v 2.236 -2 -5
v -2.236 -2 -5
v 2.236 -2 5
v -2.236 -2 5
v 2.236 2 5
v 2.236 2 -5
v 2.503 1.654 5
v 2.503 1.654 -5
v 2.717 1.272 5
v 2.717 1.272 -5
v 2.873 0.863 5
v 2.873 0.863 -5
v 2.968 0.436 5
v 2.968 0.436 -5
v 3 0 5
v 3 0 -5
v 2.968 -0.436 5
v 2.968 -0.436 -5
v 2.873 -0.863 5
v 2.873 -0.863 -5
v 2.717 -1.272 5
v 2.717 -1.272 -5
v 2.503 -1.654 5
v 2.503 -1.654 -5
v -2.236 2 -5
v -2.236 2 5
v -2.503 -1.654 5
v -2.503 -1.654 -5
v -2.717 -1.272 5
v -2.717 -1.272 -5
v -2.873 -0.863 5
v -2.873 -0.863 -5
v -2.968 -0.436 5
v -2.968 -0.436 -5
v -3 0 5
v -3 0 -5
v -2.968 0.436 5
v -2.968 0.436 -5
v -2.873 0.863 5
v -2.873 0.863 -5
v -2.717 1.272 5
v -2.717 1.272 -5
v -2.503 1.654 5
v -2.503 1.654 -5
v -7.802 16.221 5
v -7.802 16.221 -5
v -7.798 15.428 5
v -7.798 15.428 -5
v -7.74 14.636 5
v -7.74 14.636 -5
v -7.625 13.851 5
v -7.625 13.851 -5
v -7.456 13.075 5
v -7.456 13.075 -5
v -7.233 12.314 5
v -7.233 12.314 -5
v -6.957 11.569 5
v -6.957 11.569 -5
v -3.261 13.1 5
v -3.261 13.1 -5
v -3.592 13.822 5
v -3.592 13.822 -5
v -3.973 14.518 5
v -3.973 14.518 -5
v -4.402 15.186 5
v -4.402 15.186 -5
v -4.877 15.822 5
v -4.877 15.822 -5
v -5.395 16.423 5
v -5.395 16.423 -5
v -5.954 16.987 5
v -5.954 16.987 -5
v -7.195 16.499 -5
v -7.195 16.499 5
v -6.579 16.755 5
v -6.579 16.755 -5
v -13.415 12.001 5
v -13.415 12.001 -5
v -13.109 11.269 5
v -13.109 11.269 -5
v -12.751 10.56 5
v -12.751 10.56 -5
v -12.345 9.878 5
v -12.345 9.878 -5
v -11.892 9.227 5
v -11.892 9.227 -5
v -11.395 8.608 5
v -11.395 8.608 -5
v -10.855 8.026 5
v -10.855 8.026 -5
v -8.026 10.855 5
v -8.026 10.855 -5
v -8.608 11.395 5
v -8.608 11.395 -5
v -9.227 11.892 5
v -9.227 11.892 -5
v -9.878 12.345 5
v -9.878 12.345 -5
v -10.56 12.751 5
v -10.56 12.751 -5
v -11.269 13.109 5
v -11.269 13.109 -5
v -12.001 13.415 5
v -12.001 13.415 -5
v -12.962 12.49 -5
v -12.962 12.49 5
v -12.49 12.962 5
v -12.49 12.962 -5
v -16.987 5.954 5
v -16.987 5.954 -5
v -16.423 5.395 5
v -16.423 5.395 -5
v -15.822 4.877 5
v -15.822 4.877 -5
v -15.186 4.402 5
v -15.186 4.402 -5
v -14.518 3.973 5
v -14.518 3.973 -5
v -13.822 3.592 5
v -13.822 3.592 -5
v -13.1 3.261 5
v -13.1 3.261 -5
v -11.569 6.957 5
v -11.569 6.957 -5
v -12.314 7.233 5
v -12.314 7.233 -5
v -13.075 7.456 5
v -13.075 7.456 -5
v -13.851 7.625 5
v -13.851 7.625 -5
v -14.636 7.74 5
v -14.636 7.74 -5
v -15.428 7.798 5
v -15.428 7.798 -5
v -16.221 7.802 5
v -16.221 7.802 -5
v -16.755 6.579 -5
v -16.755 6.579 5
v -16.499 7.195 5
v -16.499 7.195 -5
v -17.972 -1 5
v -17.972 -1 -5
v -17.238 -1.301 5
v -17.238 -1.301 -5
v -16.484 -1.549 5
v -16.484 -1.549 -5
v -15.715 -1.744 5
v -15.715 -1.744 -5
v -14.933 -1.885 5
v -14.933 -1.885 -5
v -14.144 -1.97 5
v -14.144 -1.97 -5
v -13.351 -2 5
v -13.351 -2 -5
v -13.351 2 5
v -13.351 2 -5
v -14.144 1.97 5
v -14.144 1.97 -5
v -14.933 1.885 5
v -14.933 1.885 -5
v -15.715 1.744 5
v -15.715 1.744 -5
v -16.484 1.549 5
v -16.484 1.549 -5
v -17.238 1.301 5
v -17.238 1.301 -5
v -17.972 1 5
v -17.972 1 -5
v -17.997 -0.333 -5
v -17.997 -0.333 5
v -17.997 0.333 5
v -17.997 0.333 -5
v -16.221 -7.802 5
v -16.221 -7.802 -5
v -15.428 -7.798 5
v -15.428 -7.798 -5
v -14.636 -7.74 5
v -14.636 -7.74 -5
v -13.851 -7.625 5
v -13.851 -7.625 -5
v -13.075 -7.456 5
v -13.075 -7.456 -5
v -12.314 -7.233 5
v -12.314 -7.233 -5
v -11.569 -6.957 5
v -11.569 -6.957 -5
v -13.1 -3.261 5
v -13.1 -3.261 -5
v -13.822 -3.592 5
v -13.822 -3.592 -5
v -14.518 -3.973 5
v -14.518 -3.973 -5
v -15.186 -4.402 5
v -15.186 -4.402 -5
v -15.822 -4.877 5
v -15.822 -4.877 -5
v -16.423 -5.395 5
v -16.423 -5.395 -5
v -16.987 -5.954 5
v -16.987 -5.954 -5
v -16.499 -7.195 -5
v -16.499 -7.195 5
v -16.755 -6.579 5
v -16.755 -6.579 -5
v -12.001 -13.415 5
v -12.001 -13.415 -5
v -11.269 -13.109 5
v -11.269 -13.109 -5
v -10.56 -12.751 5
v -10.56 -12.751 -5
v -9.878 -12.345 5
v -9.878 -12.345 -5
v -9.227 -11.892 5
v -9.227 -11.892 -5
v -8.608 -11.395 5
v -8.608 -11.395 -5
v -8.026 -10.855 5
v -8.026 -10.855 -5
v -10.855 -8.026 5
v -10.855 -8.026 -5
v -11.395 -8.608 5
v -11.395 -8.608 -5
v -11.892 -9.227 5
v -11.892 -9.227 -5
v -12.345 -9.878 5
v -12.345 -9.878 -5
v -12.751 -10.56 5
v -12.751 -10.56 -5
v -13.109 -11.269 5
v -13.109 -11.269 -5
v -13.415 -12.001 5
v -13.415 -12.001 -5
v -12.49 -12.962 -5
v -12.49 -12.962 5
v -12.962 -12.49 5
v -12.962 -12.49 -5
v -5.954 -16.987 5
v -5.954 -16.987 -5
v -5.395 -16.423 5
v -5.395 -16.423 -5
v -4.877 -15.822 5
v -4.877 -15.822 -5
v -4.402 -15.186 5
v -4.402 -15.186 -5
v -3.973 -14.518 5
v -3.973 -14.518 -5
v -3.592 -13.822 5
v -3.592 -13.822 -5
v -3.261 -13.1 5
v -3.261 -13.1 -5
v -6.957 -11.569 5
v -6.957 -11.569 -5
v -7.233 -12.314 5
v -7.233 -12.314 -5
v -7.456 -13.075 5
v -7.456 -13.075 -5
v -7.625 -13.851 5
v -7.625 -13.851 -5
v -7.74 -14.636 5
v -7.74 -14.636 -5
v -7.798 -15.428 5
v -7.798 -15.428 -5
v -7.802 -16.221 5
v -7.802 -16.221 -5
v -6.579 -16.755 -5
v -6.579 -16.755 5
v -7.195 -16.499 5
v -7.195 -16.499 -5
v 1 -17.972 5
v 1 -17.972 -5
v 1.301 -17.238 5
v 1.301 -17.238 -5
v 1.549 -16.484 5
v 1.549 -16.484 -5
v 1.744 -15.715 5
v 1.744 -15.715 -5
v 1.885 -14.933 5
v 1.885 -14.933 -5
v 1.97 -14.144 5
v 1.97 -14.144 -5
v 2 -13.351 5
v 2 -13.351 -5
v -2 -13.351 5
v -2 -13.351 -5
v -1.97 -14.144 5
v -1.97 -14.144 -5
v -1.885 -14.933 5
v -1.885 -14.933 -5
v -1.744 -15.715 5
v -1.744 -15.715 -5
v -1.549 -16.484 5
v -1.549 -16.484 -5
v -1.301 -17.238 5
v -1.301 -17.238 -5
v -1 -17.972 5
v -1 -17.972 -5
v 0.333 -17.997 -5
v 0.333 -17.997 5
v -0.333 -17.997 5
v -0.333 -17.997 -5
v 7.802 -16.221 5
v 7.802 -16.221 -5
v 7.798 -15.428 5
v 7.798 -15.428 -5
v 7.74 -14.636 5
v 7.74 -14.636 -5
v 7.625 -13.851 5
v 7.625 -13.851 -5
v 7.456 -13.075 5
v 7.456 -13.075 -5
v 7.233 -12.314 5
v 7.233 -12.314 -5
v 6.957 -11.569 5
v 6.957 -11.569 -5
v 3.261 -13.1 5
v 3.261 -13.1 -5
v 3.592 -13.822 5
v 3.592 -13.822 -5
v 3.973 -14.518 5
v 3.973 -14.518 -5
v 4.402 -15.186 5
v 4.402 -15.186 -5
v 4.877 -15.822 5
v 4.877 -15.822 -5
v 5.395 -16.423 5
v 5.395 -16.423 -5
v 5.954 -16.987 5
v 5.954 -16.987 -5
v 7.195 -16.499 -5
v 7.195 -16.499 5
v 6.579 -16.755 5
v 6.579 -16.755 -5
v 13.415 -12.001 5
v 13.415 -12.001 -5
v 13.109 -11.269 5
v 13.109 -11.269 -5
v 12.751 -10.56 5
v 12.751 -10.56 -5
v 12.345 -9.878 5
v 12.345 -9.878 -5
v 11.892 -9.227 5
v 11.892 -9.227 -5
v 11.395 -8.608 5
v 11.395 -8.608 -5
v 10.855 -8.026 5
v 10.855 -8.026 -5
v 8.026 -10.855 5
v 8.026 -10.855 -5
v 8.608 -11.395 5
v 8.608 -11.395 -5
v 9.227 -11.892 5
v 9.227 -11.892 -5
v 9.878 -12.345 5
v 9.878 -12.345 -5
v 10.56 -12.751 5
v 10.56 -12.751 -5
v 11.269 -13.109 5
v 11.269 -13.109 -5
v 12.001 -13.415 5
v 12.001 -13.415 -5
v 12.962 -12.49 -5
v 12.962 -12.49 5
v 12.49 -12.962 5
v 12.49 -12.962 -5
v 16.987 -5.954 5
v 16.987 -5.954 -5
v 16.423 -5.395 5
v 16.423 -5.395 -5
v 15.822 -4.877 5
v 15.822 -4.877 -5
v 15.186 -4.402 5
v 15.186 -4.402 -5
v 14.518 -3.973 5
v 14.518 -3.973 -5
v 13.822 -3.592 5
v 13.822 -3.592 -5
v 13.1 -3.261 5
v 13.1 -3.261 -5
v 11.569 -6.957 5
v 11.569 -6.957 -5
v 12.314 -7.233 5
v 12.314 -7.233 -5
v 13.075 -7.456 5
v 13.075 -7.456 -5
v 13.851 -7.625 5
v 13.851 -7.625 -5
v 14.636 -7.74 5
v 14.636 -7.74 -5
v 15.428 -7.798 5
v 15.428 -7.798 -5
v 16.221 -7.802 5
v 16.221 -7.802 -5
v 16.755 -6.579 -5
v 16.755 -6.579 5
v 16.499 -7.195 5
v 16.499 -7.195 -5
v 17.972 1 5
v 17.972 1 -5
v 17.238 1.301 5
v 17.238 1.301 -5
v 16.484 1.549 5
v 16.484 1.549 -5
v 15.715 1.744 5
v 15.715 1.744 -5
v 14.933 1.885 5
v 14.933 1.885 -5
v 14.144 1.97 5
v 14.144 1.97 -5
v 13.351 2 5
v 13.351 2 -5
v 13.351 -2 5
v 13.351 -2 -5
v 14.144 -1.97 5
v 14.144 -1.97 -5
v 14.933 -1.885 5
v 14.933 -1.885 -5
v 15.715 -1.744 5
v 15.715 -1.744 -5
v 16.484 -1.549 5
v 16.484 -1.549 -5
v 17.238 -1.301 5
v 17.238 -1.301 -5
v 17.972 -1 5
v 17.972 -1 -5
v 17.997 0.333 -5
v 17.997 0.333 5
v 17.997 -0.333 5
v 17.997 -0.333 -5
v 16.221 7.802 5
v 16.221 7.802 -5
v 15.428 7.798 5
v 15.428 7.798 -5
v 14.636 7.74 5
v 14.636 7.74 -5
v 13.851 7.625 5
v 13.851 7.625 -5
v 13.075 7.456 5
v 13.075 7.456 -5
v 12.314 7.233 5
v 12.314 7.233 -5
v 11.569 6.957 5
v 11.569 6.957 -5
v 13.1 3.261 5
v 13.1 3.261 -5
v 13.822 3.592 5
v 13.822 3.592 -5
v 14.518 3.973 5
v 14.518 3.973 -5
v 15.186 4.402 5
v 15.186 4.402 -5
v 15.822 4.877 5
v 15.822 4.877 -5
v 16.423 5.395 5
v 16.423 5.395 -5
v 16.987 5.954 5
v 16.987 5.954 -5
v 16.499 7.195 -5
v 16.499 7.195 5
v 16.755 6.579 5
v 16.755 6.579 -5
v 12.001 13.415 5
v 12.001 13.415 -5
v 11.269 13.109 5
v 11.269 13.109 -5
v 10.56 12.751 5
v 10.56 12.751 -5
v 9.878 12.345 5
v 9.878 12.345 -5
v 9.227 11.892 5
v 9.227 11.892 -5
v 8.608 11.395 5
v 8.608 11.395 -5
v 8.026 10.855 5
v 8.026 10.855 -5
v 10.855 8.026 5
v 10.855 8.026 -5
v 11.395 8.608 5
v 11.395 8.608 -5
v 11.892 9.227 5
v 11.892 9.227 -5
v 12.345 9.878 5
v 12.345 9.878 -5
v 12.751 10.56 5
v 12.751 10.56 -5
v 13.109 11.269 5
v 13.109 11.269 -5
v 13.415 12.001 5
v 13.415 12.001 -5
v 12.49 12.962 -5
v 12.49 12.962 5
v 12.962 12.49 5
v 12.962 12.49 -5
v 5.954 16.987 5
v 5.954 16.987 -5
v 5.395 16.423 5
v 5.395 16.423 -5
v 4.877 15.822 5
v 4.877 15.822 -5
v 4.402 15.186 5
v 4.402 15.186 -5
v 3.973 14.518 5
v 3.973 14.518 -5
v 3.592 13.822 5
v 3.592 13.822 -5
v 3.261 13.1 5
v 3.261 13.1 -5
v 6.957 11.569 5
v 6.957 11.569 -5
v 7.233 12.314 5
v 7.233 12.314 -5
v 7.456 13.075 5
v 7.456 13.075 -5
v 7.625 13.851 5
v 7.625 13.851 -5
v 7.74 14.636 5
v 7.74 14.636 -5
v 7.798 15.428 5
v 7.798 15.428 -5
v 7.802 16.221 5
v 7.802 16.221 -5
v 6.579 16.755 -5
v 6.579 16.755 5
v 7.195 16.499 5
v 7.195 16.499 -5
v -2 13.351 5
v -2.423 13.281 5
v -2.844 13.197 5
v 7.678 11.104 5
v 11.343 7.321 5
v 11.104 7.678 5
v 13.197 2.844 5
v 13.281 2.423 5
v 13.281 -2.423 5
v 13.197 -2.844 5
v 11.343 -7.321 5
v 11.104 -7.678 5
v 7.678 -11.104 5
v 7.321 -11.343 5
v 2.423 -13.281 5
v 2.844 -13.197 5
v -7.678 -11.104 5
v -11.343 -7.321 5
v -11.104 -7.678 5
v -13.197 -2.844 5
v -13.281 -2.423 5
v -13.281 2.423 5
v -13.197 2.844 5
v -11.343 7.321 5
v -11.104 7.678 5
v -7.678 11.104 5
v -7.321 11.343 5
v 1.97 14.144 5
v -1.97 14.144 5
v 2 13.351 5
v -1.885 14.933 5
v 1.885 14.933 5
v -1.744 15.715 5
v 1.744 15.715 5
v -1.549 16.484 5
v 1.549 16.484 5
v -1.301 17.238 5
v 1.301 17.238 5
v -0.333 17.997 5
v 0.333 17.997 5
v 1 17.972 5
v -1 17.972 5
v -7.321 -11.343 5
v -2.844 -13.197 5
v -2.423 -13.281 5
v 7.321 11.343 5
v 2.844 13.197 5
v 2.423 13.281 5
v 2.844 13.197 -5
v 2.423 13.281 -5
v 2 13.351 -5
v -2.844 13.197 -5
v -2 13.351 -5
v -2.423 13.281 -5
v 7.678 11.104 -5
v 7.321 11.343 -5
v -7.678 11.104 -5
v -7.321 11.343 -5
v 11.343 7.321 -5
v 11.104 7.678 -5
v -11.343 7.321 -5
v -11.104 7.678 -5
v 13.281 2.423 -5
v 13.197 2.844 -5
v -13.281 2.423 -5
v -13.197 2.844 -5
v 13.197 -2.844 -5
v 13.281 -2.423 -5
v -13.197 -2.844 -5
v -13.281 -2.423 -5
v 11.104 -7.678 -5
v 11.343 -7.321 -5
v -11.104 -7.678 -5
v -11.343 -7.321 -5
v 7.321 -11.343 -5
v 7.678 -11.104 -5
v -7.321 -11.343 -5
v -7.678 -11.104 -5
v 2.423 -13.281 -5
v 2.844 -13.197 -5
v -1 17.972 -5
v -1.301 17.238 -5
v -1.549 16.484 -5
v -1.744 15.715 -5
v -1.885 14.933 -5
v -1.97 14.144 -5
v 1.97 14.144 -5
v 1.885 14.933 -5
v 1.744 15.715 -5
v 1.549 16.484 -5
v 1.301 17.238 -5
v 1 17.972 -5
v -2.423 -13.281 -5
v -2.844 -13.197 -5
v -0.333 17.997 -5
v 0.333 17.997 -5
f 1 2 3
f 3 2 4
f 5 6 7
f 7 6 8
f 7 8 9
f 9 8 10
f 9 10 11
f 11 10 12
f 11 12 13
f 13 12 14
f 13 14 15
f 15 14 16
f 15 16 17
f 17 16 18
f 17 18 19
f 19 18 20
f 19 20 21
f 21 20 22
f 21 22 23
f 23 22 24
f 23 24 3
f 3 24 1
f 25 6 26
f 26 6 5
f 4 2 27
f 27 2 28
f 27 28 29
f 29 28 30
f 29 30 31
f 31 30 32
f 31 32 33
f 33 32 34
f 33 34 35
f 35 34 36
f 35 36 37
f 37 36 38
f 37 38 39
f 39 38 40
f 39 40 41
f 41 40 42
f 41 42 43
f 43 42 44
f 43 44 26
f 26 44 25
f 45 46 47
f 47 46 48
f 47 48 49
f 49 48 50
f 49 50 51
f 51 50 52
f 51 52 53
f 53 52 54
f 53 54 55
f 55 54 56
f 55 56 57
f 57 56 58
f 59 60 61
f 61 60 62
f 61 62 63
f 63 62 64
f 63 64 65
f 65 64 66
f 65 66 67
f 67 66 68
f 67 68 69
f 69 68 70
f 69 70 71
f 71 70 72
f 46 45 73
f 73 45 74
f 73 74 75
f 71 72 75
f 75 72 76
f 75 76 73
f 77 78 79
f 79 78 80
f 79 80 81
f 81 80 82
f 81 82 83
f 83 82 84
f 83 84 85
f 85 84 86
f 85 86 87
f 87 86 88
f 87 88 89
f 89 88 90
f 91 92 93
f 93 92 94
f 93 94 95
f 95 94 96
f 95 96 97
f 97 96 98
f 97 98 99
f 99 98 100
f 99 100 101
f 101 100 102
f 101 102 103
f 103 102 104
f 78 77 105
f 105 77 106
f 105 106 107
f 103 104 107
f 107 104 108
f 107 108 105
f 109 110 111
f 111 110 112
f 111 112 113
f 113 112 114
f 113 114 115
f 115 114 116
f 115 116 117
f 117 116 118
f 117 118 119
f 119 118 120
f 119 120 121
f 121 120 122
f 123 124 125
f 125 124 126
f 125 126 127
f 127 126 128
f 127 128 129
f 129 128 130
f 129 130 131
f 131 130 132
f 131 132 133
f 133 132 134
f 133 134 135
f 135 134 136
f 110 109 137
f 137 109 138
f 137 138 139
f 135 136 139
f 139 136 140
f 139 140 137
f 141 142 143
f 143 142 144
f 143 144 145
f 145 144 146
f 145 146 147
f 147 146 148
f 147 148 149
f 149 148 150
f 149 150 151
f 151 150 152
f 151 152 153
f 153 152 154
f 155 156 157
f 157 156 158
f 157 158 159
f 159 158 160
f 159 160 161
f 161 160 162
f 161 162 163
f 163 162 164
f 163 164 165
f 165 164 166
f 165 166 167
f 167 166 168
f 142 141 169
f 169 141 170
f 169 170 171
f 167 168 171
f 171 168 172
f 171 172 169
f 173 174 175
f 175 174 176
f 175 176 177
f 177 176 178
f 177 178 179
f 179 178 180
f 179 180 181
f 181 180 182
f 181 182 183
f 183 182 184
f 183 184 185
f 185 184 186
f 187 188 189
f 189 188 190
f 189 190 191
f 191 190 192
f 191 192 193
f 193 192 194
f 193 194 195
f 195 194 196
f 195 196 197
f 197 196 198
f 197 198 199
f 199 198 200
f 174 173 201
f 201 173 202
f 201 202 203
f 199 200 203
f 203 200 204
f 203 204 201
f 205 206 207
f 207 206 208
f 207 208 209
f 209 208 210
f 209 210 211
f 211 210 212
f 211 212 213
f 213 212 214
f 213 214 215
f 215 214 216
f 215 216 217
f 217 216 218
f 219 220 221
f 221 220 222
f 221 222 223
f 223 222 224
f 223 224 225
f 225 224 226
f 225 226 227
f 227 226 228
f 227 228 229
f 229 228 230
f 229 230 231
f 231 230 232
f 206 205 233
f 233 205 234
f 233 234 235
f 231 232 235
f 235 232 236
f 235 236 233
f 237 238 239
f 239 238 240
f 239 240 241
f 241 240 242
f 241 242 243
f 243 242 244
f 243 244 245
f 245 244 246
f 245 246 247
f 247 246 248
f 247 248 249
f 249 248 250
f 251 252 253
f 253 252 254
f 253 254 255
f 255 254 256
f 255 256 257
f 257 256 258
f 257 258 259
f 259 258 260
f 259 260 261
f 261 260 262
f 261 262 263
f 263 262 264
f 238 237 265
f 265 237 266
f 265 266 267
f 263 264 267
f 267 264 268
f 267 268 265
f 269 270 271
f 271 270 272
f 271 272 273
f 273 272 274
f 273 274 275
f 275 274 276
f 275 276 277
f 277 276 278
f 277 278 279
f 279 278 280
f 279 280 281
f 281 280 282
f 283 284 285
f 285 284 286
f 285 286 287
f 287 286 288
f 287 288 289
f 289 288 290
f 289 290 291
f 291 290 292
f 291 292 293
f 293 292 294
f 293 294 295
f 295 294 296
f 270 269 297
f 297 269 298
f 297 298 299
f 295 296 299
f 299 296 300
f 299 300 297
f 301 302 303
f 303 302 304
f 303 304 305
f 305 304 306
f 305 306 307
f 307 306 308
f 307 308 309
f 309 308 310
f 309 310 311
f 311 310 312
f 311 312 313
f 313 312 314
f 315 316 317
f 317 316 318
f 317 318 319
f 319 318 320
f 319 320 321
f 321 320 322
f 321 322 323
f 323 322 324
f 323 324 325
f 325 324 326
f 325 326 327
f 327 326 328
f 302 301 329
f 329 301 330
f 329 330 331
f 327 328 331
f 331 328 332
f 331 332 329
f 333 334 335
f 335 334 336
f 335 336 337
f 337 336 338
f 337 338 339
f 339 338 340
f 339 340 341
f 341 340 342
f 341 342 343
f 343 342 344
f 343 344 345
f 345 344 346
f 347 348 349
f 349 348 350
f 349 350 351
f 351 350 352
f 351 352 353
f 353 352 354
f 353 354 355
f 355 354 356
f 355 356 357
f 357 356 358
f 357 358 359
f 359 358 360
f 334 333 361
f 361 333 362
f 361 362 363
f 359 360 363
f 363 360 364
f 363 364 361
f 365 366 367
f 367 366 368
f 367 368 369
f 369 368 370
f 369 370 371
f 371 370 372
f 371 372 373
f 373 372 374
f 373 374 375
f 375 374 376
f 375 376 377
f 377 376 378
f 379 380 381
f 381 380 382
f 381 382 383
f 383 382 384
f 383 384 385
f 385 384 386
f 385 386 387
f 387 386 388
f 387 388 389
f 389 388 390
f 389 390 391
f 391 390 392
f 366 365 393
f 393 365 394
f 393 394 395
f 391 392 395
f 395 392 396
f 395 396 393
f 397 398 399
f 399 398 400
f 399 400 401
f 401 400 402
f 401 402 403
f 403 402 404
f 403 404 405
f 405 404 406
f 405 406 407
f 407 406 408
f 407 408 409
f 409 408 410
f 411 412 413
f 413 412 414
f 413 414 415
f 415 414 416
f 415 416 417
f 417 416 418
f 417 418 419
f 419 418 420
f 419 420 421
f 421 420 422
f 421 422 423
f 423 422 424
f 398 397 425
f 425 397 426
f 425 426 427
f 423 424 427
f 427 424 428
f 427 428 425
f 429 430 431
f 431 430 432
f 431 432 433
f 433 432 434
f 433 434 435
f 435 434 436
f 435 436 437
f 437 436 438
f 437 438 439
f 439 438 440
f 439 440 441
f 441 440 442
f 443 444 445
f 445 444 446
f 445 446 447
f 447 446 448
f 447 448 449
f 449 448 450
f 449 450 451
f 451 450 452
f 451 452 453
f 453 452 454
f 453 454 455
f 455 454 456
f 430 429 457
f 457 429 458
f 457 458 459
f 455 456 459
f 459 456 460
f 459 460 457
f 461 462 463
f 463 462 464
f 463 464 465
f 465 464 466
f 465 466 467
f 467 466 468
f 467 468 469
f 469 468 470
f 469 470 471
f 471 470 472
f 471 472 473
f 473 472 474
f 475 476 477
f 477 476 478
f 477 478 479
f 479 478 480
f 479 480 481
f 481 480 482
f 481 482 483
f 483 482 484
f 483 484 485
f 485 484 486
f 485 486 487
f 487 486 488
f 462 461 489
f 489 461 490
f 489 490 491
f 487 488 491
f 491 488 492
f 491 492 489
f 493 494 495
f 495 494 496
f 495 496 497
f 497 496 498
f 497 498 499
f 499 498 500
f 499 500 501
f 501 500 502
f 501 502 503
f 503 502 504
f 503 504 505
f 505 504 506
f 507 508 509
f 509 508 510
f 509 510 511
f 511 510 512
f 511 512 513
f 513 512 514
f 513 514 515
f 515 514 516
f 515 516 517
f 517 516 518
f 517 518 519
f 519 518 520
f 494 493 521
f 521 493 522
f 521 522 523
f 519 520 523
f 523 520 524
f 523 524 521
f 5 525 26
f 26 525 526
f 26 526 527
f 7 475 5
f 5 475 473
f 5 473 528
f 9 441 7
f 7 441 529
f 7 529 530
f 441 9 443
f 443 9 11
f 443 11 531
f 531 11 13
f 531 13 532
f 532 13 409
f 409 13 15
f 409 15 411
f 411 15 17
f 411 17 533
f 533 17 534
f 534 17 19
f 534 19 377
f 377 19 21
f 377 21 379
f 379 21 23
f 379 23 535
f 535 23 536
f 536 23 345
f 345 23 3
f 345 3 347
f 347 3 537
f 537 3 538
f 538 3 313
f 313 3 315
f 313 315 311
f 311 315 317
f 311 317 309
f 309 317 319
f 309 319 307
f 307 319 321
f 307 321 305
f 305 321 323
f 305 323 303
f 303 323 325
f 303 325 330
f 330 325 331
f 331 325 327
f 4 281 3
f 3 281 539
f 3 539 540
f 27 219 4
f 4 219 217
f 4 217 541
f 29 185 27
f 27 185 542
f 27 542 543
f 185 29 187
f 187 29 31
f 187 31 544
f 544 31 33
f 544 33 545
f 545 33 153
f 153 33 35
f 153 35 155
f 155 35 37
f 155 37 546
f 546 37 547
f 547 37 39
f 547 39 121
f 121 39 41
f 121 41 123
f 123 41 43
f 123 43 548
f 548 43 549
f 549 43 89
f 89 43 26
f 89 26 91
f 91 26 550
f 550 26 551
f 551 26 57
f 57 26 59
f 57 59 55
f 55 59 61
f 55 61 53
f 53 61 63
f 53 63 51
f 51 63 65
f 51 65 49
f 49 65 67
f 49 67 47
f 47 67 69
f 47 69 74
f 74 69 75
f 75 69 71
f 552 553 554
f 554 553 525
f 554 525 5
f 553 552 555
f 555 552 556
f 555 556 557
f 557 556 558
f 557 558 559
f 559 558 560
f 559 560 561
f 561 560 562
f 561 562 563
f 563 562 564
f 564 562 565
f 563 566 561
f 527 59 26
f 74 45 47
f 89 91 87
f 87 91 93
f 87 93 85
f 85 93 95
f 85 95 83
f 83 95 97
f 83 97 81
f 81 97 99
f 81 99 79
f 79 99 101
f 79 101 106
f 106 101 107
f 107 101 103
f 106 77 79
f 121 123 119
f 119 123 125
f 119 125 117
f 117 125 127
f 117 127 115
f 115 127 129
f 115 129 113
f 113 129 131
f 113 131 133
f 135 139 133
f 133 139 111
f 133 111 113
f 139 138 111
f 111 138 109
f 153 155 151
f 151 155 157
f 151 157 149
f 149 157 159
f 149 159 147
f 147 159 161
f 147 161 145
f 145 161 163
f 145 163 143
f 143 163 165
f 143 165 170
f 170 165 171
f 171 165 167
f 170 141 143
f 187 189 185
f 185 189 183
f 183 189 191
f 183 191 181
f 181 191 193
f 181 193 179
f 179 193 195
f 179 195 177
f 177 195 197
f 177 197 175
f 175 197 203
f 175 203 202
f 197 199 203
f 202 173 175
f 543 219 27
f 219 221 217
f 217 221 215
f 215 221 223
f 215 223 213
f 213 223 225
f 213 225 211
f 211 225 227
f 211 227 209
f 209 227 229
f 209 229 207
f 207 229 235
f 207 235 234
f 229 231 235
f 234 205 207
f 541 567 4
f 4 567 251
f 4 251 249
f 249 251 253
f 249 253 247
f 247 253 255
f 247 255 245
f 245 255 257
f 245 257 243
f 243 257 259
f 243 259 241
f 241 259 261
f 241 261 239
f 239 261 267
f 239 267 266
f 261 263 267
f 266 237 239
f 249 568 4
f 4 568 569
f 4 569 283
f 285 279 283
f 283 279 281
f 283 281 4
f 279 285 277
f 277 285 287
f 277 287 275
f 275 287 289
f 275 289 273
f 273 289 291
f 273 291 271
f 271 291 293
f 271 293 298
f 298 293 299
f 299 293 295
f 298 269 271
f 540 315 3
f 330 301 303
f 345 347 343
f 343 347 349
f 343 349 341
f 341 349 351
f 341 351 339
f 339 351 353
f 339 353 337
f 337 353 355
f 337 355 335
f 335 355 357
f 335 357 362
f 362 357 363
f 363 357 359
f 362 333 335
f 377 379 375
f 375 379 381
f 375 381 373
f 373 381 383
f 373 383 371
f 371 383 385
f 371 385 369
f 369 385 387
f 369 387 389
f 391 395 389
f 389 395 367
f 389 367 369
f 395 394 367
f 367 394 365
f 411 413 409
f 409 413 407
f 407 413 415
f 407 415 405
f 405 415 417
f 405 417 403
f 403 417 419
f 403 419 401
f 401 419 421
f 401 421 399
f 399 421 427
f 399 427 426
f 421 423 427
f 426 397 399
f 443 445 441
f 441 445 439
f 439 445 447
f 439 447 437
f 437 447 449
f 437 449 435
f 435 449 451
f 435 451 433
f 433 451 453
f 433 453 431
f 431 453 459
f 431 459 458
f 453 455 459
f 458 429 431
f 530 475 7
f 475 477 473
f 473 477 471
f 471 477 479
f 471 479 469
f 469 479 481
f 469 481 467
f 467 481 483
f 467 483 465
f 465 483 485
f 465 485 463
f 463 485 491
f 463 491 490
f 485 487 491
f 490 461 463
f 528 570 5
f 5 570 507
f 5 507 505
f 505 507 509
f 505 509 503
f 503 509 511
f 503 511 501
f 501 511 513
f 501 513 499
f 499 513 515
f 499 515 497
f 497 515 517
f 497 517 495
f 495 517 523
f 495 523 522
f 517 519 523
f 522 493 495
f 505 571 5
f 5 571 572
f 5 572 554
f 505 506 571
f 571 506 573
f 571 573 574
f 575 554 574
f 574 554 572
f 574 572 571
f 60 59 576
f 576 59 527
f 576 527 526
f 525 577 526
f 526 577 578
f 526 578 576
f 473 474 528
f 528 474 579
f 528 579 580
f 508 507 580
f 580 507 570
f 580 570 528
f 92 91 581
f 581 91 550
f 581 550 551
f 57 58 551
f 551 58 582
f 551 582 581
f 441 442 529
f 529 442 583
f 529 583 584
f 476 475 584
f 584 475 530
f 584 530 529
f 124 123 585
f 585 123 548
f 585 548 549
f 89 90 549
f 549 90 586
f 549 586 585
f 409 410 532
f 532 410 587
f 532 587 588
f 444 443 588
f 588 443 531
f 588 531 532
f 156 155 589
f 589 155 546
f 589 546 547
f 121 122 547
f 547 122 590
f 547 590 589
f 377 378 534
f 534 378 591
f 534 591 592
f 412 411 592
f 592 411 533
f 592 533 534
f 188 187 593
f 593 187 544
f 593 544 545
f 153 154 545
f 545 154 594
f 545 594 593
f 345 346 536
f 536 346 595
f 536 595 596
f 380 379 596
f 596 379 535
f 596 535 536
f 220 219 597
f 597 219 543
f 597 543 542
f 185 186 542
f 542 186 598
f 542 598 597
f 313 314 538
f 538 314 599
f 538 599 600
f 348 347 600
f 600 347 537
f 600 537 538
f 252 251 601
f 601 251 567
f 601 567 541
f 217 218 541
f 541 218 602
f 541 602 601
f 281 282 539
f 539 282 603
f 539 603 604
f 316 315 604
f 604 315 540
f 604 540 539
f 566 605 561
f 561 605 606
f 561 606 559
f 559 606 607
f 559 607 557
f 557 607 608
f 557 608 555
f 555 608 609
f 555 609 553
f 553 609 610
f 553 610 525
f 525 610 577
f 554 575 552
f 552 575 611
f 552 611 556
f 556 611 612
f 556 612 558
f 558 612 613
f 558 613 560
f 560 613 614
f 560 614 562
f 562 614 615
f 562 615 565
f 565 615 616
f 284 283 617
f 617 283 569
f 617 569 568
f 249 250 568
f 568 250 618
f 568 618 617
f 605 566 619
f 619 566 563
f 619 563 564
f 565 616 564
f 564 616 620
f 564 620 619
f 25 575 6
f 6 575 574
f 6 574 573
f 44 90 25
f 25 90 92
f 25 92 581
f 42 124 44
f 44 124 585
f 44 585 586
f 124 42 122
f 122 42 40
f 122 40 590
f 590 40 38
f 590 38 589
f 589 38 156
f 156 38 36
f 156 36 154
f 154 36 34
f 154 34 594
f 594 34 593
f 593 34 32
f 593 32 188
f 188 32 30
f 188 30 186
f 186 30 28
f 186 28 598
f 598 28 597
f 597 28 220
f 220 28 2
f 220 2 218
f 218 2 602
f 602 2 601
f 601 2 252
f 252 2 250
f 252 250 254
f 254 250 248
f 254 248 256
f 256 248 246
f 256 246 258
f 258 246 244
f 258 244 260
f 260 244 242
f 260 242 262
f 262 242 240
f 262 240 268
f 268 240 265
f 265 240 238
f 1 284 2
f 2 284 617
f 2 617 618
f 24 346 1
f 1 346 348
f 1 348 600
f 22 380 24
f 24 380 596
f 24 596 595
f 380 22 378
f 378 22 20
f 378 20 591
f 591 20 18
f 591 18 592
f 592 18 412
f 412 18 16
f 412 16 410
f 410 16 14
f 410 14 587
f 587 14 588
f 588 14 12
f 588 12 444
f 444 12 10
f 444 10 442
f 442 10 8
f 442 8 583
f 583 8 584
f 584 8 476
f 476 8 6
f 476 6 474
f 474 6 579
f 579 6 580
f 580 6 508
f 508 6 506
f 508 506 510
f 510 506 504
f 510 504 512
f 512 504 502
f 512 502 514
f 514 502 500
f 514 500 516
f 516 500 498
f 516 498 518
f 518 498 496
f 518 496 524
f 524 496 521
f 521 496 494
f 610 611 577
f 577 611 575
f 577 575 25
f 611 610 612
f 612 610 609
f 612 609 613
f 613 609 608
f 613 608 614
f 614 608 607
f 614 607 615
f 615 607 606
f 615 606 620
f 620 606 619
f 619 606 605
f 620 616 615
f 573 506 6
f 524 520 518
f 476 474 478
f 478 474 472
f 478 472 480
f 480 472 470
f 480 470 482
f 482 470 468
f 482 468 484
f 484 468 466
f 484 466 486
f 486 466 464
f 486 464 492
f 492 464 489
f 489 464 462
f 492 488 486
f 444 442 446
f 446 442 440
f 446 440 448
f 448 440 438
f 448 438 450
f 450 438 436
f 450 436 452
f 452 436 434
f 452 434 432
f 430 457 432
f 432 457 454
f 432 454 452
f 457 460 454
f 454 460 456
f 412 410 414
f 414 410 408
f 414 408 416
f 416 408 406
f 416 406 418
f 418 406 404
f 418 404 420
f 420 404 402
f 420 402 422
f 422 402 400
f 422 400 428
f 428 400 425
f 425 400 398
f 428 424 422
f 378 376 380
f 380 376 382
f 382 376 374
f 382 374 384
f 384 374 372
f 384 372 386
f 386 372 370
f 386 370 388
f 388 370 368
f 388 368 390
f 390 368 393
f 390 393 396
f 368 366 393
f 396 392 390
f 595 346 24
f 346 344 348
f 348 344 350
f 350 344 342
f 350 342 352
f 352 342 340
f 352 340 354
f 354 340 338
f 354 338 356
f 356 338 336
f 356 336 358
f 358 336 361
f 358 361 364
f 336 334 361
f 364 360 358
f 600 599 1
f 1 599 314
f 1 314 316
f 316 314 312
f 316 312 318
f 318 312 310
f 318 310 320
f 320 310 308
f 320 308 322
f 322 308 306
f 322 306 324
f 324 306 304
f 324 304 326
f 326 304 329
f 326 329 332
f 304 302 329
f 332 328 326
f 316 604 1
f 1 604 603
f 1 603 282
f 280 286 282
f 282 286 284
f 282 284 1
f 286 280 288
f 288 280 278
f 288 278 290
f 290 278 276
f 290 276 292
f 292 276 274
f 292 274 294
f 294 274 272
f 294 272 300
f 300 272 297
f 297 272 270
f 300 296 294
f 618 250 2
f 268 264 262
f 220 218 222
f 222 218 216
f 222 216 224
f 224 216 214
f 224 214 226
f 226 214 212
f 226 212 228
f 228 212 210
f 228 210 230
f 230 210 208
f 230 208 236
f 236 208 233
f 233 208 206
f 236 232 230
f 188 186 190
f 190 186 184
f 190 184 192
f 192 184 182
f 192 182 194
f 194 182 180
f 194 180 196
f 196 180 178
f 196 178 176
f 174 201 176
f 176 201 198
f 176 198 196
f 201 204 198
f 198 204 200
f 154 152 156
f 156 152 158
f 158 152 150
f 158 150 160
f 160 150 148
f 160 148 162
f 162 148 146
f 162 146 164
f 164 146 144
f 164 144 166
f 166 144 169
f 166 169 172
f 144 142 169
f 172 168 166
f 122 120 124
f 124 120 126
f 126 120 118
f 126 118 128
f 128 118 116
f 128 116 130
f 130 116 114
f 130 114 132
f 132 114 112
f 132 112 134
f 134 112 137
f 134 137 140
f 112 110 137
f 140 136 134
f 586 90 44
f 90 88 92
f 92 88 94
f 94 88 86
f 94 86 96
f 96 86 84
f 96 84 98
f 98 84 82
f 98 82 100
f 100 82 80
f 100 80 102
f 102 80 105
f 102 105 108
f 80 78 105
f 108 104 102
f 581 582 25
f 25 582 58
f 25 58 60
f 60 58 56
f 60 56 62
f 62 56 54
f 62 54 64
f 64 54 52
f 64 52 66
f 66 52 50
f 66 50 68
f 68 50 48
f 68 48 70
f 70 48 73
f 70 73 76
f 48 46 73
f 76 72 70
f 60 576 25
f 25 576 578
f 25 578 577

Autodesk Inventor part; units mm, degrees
ref_plane "YZ Plane" through (0, 0, 0) normal (1, 0, 0) x (0, 1, 0)
ref_plane "XZ Plane" through (0, 0, 0) normal (0, 1, 0) x (-1, 0, 0)
ref_plane "XY Plane" through (0, 0, 0) normal (0, 0, 1) x (1, 0, 0)
sketch "스케치1" plane through (0, 0, 0) normal (0, 0, 1) x (1, 0, 0)
  circle A0 centre (0, 0) radius 18
  dimension "d0" = 36
extrude "돌출1" add sketch "스케치1" along normal mid plane 10
sketch "스케치2" plane through (0, 0, 5) normal (0, 0, 1) x (1, 0, 0)
  circle A0 centre (0, 0) radius 18 projected
  circle A1 centre (0, 0) radius 13.5
  line L0 (0, 0) -> (0, 22.2867) construction
  line L1 (-1, 0) -> (-1, 22.2867) construction
  line L2 (-2, 0) -> (-2, 22.2867) construction
  arc A2 (-1, 17.9722) -> (-2, 13.351) centre (9.3, 13.3246) ccw
  arc A3 (2, 13.351) -> (1, 17.9722) centre (-9.3, 13.3246) ccw
  point P0 (1, 17.9722)
  point P1 (2, 13.351)
  dimension "d3" = 4.5
  dimension "d4" = 1
  dimension "d5" = 1
  dimension "d6" = 11.3
extrude "돌출2" cut sketch "스케치2" against normal blind 15 contours A0 A2 A1 A3 picked at (16.1915, -2.5264)
pattern_circular "원형 패턴1" count 16 over 360 about axis through (0, 0, 5) along (0, 0, -1)
sketch "스케치3" plane through (0, 0, 5) normal (0, 0, 1) x (1, 0, 0)
  arc A0 (2, 13.351) -> (1, 17.9722) centre (-9.3, 13.3246) ccw projected
  arc A1 (1, 17.9722) -> (-1, 17.9722) centre (0, 0) ccw projected
  arc A2 (-1, 17.9722) -> (-2, 13.351) centre (9.3, 13.3246) ccw projected
  arc A3 (-2, 13.351) -> (-3.2615, 13.1001) centre (0, 0) ccw projected
  arc A4 (-3.2615, 13.1001) -> (-5.9538, 16.9868) centre (-13.6911, 8.7513) ccw projected
  arc A5 (-5.9538, 16.9868) -> (-7.8015, 16.2215) centre (0, 0) ccw projected
  arc A6 (-7.8015, 16.2215) -> (-6.957, 11.5694) centre (3.493, 15.8692) ccw projected
  arc A7 (-6.957, 11.5694) -> (-8.0264, 10.8548) centre (0, 0) ccw projected
  arc A8 (-8.0264, 10.8548) -> (-12.0012, 13.4154) centre (-15.998, 2.8458) ccw projected
  arc A9 (-12.0012, 13.4154) -> (-13.4154, 12.0012) centre (0, 0) ccw projected
  arc A10 (-13.4154, 12.0012) -> (-10.8548, 8.0264) centre (-2.8458, 15.998) ccw projected
  arc A11 (-10.8548, 8.0264) -> (-11.5694, 6.957) centre (0, 0) ccw projected
  arc A12 (-11.5694, 6.957) -> (-16.2215, 7.8015) centre (-15.8692, -3.493) ccw projected
  arc A13 (-16.2215, 7.8015) -> (-16.9868, 5.9538) centre (0, 0) ccw projected
  arc A14 (-16.9868, 5.9538) -> (-13.1001, 3.2615) centre (-8.7513, 13.6911) ccw projected
  arc A15 (-13.1001, 3.2615) -> (-13.351, 2) centre (0, 0) ccw projected
  arc A16 (-13.351, 2) -> (-17.9722, 1) centre (-13.3246, -9.3) ccw projected
  arc A17 (-17.9722, 1) -> (-17.9722, -1) centre (0, 0) ccw projected
  arc A18 (-17.9722, -1) -> (-13.351, -2) centre (-13.3246, 9.3) ccw projected
  arc A19 (-13.351, -2) -> (-13.1001, -3.2615) centre (0, 0) ccw projected
  arc A20 (-13.1001, -3.2615) -> (-16.9868, -5.9538) centre (-8.7513, -13.6911) ccw projected
  arc A21 (-16.9868, -5.9538) -> (-16.2215, -7.8015) centre (0, 0) ccw projected
  arc A22 (-16.2215, -7.8015) -> (-11.5694, -6.957) centre (-15.8692, 3.493) ccw projected
  arc A23 (-11.5694, -6.957) -> (-10.8548, -8.0264) centre (0, 0) ccw projected
  arc A24 (-10.8548, -8.0264) -> (-13.4154, -12.0012) centre (-2.8458, -15.998) ccw projected
  arc A25 (-13.4154, -12.0012) -> (-12.0012, -13.4154) centre (0, 0) ccw projected
  arc A26 (-12.0012, -13.4154) -> (-8.0264, -10.8548) centre (-15.998, -2.8458) ccw projected
  arc A27 (-8.0264, -10.8548) -> (-6.957, -11.5694) centre (0, 0) ccw projected
  arc A28 (-6.957, -11.5694) -> (-7.8015, -16.2215) centre (3.493, -15.8692) ccw projected
  arc A29 (-7.8015, -16.2215) -> (-5.9538, -16.9868) centre (0, 0) ccw projected
  arc A30 (-5.9538, -16.9868) -> (-3.2615, -13.1001) centre (-13.6911, -8.7513) ccw projected
  arc A31 (-3.2615, -13.1001) -> (-2, -13.351) centre (0, 0) ccw projected
  arc A32 (-2, -13.351) -> (-1, -17.9722) centre (9.3, -13.3246) ccw projected
  arc A33 (-1, -17.9722) -> (1, -17.9722) centre (0, 0) ccw projected
  arc A34 (1, -17.9722) -> (2, -13.351) centre (-9.3, -13.3246) ccw projected
  arc A35 (2, -13.351) -> (3.2615, -13.1001) centre (0, 0) ccw projected
  arc A36 (3.2615, -13.1001) -> (5.9538, -16.9868) centre (13.6911, -8.7513) ccw projected
  arc A37 (5.9538, -16.9868) -> (7.8015, -16.2215) centre (0, 0) ccw projected
  arc A38 (7.8015, -16.2215) -> (6.957, -11.5694) centre (-3.493, -15.8692) ccw projected
  arc A39 (6.957, -11.5694) -> (8.0264, -10.8548) centre (0, 0) ccw projected
  arc A40 (8.0264, -10.8548) -> (12.0012, -13.4154) centre (15.998, -2.8458) ccw projected
  arc A41 (12.0012, -13.4154) -> (13.4154, -12.0012) centre (0, 0) ccw projected
  arc A42 (13.4154, -12.0012) -> (10.8548, -8.0264) centre (2.8458, -15.998) ccw projected
  arc A43 (10.8548, -8.0264) -> (11.5694, -6.957) centre (0, 0) ccw projected
  arc A44 (11.5694, -6.957) -> (16.2215, -7.8015) centre (15.8692, 3.493) ccw projected
  arc A45 (16.2215, -7.8015) -> (16.9868, -5.9538) centre (0, 0) ccw projected
  arc A46 (16.9868, -5.9538) -> (13.1001, -3.2615) centre (8.7513, -13.6911) ccw projected
  arc A47 (13.1001, -3.2615) -> (13.351, -2) centre (0, 0) ccw projected
  arc A48 (13.351, -2) -> (17.9722, -1) centre (13.3246, 9.3) ccw projected
  arc A49 (17.9722, -1) -> (17.9722, 1) centre (0, 0) ccw projected
  arc A50 (17.9722, 1) -> (13.351, 2) centre (13.3246, -9.3) ccw projected
  arc A51 (13.351, 2) -> (13.1001, 3.2615) centre (0, 0) ccw projected
  arc A52 (13.1001, 3.2615) -> (16.9868, 5.9538) centre (8.7513, 13.6911) ccw projected
  arc A53 (16.9868, 5.9538) -> (16.2215, 7.8015) centre (0, 0) ccw projected
  arc A54 (16.2215, 7.8015) -> (11.5694, 6.957) centre (15.8692, -3.493) ccw projected
  arc A55 (11.5694, 6.957) -> (10.8548, 8.0264) centre (0, 0) ccw projected
  arc A56 (10.8548, 8.0264) -> (13.4154, 12.0012) centre (2.8458, 15.998) ccw projected
  arc A57 (13.4154, 12.0012) -> (12.0012, 13.4154) centre (0, 0) ccw projected
  arc A58 (12.0012, 13.4154) -> (8.0264, 10.8548) centre (15.998, 2.8458) ccw projected
  arc A59 (8.0264, 10.8548) -> (6.957, 11.5694) centre (0, 0) ccw projected
  arc A60 (6.957, 11.5694) -> (7.8015, 16.2215) centre (-3.493, 15.8692) ccw projected
  arc A61 (7.8015, 16.2215) -> (5.9538, 16.9868) centre (0, 0) ccw projected
  arc A62 (5.9538, 16.9868) -> (3.2615, 13.1001) centre (13.6911, 8.7513) ccw projected
  arc A63 (3.2615, 13.1001) -> (2, 13.351) centre (0, 0) ccw projected
  line L0 (-4.0823, 0) -> (5.9538, 0) construction
  line L1 (-2.2361, 2) -> (2.2361, 2)
  line L2 (-2.2361, -2) -> (2.2361, -2)
  arc A64 (-2.2361, 2) -> (-2.2361, -2) centre (0, 0) ccw
  arc A65 (2.2361, -2) -> (2.2361, 2) centre (0, 0) ccw
  point P0 (3, 0)
  point P1 (-3, 0)
  dimension "d13" = 2
  dimension "d14" = 2
  dimension "d15" = 6
extrude "돌출3" cut sketch "스케치3" against normal through all contours L1 A65 L2 A64
properties part number "피니언"
